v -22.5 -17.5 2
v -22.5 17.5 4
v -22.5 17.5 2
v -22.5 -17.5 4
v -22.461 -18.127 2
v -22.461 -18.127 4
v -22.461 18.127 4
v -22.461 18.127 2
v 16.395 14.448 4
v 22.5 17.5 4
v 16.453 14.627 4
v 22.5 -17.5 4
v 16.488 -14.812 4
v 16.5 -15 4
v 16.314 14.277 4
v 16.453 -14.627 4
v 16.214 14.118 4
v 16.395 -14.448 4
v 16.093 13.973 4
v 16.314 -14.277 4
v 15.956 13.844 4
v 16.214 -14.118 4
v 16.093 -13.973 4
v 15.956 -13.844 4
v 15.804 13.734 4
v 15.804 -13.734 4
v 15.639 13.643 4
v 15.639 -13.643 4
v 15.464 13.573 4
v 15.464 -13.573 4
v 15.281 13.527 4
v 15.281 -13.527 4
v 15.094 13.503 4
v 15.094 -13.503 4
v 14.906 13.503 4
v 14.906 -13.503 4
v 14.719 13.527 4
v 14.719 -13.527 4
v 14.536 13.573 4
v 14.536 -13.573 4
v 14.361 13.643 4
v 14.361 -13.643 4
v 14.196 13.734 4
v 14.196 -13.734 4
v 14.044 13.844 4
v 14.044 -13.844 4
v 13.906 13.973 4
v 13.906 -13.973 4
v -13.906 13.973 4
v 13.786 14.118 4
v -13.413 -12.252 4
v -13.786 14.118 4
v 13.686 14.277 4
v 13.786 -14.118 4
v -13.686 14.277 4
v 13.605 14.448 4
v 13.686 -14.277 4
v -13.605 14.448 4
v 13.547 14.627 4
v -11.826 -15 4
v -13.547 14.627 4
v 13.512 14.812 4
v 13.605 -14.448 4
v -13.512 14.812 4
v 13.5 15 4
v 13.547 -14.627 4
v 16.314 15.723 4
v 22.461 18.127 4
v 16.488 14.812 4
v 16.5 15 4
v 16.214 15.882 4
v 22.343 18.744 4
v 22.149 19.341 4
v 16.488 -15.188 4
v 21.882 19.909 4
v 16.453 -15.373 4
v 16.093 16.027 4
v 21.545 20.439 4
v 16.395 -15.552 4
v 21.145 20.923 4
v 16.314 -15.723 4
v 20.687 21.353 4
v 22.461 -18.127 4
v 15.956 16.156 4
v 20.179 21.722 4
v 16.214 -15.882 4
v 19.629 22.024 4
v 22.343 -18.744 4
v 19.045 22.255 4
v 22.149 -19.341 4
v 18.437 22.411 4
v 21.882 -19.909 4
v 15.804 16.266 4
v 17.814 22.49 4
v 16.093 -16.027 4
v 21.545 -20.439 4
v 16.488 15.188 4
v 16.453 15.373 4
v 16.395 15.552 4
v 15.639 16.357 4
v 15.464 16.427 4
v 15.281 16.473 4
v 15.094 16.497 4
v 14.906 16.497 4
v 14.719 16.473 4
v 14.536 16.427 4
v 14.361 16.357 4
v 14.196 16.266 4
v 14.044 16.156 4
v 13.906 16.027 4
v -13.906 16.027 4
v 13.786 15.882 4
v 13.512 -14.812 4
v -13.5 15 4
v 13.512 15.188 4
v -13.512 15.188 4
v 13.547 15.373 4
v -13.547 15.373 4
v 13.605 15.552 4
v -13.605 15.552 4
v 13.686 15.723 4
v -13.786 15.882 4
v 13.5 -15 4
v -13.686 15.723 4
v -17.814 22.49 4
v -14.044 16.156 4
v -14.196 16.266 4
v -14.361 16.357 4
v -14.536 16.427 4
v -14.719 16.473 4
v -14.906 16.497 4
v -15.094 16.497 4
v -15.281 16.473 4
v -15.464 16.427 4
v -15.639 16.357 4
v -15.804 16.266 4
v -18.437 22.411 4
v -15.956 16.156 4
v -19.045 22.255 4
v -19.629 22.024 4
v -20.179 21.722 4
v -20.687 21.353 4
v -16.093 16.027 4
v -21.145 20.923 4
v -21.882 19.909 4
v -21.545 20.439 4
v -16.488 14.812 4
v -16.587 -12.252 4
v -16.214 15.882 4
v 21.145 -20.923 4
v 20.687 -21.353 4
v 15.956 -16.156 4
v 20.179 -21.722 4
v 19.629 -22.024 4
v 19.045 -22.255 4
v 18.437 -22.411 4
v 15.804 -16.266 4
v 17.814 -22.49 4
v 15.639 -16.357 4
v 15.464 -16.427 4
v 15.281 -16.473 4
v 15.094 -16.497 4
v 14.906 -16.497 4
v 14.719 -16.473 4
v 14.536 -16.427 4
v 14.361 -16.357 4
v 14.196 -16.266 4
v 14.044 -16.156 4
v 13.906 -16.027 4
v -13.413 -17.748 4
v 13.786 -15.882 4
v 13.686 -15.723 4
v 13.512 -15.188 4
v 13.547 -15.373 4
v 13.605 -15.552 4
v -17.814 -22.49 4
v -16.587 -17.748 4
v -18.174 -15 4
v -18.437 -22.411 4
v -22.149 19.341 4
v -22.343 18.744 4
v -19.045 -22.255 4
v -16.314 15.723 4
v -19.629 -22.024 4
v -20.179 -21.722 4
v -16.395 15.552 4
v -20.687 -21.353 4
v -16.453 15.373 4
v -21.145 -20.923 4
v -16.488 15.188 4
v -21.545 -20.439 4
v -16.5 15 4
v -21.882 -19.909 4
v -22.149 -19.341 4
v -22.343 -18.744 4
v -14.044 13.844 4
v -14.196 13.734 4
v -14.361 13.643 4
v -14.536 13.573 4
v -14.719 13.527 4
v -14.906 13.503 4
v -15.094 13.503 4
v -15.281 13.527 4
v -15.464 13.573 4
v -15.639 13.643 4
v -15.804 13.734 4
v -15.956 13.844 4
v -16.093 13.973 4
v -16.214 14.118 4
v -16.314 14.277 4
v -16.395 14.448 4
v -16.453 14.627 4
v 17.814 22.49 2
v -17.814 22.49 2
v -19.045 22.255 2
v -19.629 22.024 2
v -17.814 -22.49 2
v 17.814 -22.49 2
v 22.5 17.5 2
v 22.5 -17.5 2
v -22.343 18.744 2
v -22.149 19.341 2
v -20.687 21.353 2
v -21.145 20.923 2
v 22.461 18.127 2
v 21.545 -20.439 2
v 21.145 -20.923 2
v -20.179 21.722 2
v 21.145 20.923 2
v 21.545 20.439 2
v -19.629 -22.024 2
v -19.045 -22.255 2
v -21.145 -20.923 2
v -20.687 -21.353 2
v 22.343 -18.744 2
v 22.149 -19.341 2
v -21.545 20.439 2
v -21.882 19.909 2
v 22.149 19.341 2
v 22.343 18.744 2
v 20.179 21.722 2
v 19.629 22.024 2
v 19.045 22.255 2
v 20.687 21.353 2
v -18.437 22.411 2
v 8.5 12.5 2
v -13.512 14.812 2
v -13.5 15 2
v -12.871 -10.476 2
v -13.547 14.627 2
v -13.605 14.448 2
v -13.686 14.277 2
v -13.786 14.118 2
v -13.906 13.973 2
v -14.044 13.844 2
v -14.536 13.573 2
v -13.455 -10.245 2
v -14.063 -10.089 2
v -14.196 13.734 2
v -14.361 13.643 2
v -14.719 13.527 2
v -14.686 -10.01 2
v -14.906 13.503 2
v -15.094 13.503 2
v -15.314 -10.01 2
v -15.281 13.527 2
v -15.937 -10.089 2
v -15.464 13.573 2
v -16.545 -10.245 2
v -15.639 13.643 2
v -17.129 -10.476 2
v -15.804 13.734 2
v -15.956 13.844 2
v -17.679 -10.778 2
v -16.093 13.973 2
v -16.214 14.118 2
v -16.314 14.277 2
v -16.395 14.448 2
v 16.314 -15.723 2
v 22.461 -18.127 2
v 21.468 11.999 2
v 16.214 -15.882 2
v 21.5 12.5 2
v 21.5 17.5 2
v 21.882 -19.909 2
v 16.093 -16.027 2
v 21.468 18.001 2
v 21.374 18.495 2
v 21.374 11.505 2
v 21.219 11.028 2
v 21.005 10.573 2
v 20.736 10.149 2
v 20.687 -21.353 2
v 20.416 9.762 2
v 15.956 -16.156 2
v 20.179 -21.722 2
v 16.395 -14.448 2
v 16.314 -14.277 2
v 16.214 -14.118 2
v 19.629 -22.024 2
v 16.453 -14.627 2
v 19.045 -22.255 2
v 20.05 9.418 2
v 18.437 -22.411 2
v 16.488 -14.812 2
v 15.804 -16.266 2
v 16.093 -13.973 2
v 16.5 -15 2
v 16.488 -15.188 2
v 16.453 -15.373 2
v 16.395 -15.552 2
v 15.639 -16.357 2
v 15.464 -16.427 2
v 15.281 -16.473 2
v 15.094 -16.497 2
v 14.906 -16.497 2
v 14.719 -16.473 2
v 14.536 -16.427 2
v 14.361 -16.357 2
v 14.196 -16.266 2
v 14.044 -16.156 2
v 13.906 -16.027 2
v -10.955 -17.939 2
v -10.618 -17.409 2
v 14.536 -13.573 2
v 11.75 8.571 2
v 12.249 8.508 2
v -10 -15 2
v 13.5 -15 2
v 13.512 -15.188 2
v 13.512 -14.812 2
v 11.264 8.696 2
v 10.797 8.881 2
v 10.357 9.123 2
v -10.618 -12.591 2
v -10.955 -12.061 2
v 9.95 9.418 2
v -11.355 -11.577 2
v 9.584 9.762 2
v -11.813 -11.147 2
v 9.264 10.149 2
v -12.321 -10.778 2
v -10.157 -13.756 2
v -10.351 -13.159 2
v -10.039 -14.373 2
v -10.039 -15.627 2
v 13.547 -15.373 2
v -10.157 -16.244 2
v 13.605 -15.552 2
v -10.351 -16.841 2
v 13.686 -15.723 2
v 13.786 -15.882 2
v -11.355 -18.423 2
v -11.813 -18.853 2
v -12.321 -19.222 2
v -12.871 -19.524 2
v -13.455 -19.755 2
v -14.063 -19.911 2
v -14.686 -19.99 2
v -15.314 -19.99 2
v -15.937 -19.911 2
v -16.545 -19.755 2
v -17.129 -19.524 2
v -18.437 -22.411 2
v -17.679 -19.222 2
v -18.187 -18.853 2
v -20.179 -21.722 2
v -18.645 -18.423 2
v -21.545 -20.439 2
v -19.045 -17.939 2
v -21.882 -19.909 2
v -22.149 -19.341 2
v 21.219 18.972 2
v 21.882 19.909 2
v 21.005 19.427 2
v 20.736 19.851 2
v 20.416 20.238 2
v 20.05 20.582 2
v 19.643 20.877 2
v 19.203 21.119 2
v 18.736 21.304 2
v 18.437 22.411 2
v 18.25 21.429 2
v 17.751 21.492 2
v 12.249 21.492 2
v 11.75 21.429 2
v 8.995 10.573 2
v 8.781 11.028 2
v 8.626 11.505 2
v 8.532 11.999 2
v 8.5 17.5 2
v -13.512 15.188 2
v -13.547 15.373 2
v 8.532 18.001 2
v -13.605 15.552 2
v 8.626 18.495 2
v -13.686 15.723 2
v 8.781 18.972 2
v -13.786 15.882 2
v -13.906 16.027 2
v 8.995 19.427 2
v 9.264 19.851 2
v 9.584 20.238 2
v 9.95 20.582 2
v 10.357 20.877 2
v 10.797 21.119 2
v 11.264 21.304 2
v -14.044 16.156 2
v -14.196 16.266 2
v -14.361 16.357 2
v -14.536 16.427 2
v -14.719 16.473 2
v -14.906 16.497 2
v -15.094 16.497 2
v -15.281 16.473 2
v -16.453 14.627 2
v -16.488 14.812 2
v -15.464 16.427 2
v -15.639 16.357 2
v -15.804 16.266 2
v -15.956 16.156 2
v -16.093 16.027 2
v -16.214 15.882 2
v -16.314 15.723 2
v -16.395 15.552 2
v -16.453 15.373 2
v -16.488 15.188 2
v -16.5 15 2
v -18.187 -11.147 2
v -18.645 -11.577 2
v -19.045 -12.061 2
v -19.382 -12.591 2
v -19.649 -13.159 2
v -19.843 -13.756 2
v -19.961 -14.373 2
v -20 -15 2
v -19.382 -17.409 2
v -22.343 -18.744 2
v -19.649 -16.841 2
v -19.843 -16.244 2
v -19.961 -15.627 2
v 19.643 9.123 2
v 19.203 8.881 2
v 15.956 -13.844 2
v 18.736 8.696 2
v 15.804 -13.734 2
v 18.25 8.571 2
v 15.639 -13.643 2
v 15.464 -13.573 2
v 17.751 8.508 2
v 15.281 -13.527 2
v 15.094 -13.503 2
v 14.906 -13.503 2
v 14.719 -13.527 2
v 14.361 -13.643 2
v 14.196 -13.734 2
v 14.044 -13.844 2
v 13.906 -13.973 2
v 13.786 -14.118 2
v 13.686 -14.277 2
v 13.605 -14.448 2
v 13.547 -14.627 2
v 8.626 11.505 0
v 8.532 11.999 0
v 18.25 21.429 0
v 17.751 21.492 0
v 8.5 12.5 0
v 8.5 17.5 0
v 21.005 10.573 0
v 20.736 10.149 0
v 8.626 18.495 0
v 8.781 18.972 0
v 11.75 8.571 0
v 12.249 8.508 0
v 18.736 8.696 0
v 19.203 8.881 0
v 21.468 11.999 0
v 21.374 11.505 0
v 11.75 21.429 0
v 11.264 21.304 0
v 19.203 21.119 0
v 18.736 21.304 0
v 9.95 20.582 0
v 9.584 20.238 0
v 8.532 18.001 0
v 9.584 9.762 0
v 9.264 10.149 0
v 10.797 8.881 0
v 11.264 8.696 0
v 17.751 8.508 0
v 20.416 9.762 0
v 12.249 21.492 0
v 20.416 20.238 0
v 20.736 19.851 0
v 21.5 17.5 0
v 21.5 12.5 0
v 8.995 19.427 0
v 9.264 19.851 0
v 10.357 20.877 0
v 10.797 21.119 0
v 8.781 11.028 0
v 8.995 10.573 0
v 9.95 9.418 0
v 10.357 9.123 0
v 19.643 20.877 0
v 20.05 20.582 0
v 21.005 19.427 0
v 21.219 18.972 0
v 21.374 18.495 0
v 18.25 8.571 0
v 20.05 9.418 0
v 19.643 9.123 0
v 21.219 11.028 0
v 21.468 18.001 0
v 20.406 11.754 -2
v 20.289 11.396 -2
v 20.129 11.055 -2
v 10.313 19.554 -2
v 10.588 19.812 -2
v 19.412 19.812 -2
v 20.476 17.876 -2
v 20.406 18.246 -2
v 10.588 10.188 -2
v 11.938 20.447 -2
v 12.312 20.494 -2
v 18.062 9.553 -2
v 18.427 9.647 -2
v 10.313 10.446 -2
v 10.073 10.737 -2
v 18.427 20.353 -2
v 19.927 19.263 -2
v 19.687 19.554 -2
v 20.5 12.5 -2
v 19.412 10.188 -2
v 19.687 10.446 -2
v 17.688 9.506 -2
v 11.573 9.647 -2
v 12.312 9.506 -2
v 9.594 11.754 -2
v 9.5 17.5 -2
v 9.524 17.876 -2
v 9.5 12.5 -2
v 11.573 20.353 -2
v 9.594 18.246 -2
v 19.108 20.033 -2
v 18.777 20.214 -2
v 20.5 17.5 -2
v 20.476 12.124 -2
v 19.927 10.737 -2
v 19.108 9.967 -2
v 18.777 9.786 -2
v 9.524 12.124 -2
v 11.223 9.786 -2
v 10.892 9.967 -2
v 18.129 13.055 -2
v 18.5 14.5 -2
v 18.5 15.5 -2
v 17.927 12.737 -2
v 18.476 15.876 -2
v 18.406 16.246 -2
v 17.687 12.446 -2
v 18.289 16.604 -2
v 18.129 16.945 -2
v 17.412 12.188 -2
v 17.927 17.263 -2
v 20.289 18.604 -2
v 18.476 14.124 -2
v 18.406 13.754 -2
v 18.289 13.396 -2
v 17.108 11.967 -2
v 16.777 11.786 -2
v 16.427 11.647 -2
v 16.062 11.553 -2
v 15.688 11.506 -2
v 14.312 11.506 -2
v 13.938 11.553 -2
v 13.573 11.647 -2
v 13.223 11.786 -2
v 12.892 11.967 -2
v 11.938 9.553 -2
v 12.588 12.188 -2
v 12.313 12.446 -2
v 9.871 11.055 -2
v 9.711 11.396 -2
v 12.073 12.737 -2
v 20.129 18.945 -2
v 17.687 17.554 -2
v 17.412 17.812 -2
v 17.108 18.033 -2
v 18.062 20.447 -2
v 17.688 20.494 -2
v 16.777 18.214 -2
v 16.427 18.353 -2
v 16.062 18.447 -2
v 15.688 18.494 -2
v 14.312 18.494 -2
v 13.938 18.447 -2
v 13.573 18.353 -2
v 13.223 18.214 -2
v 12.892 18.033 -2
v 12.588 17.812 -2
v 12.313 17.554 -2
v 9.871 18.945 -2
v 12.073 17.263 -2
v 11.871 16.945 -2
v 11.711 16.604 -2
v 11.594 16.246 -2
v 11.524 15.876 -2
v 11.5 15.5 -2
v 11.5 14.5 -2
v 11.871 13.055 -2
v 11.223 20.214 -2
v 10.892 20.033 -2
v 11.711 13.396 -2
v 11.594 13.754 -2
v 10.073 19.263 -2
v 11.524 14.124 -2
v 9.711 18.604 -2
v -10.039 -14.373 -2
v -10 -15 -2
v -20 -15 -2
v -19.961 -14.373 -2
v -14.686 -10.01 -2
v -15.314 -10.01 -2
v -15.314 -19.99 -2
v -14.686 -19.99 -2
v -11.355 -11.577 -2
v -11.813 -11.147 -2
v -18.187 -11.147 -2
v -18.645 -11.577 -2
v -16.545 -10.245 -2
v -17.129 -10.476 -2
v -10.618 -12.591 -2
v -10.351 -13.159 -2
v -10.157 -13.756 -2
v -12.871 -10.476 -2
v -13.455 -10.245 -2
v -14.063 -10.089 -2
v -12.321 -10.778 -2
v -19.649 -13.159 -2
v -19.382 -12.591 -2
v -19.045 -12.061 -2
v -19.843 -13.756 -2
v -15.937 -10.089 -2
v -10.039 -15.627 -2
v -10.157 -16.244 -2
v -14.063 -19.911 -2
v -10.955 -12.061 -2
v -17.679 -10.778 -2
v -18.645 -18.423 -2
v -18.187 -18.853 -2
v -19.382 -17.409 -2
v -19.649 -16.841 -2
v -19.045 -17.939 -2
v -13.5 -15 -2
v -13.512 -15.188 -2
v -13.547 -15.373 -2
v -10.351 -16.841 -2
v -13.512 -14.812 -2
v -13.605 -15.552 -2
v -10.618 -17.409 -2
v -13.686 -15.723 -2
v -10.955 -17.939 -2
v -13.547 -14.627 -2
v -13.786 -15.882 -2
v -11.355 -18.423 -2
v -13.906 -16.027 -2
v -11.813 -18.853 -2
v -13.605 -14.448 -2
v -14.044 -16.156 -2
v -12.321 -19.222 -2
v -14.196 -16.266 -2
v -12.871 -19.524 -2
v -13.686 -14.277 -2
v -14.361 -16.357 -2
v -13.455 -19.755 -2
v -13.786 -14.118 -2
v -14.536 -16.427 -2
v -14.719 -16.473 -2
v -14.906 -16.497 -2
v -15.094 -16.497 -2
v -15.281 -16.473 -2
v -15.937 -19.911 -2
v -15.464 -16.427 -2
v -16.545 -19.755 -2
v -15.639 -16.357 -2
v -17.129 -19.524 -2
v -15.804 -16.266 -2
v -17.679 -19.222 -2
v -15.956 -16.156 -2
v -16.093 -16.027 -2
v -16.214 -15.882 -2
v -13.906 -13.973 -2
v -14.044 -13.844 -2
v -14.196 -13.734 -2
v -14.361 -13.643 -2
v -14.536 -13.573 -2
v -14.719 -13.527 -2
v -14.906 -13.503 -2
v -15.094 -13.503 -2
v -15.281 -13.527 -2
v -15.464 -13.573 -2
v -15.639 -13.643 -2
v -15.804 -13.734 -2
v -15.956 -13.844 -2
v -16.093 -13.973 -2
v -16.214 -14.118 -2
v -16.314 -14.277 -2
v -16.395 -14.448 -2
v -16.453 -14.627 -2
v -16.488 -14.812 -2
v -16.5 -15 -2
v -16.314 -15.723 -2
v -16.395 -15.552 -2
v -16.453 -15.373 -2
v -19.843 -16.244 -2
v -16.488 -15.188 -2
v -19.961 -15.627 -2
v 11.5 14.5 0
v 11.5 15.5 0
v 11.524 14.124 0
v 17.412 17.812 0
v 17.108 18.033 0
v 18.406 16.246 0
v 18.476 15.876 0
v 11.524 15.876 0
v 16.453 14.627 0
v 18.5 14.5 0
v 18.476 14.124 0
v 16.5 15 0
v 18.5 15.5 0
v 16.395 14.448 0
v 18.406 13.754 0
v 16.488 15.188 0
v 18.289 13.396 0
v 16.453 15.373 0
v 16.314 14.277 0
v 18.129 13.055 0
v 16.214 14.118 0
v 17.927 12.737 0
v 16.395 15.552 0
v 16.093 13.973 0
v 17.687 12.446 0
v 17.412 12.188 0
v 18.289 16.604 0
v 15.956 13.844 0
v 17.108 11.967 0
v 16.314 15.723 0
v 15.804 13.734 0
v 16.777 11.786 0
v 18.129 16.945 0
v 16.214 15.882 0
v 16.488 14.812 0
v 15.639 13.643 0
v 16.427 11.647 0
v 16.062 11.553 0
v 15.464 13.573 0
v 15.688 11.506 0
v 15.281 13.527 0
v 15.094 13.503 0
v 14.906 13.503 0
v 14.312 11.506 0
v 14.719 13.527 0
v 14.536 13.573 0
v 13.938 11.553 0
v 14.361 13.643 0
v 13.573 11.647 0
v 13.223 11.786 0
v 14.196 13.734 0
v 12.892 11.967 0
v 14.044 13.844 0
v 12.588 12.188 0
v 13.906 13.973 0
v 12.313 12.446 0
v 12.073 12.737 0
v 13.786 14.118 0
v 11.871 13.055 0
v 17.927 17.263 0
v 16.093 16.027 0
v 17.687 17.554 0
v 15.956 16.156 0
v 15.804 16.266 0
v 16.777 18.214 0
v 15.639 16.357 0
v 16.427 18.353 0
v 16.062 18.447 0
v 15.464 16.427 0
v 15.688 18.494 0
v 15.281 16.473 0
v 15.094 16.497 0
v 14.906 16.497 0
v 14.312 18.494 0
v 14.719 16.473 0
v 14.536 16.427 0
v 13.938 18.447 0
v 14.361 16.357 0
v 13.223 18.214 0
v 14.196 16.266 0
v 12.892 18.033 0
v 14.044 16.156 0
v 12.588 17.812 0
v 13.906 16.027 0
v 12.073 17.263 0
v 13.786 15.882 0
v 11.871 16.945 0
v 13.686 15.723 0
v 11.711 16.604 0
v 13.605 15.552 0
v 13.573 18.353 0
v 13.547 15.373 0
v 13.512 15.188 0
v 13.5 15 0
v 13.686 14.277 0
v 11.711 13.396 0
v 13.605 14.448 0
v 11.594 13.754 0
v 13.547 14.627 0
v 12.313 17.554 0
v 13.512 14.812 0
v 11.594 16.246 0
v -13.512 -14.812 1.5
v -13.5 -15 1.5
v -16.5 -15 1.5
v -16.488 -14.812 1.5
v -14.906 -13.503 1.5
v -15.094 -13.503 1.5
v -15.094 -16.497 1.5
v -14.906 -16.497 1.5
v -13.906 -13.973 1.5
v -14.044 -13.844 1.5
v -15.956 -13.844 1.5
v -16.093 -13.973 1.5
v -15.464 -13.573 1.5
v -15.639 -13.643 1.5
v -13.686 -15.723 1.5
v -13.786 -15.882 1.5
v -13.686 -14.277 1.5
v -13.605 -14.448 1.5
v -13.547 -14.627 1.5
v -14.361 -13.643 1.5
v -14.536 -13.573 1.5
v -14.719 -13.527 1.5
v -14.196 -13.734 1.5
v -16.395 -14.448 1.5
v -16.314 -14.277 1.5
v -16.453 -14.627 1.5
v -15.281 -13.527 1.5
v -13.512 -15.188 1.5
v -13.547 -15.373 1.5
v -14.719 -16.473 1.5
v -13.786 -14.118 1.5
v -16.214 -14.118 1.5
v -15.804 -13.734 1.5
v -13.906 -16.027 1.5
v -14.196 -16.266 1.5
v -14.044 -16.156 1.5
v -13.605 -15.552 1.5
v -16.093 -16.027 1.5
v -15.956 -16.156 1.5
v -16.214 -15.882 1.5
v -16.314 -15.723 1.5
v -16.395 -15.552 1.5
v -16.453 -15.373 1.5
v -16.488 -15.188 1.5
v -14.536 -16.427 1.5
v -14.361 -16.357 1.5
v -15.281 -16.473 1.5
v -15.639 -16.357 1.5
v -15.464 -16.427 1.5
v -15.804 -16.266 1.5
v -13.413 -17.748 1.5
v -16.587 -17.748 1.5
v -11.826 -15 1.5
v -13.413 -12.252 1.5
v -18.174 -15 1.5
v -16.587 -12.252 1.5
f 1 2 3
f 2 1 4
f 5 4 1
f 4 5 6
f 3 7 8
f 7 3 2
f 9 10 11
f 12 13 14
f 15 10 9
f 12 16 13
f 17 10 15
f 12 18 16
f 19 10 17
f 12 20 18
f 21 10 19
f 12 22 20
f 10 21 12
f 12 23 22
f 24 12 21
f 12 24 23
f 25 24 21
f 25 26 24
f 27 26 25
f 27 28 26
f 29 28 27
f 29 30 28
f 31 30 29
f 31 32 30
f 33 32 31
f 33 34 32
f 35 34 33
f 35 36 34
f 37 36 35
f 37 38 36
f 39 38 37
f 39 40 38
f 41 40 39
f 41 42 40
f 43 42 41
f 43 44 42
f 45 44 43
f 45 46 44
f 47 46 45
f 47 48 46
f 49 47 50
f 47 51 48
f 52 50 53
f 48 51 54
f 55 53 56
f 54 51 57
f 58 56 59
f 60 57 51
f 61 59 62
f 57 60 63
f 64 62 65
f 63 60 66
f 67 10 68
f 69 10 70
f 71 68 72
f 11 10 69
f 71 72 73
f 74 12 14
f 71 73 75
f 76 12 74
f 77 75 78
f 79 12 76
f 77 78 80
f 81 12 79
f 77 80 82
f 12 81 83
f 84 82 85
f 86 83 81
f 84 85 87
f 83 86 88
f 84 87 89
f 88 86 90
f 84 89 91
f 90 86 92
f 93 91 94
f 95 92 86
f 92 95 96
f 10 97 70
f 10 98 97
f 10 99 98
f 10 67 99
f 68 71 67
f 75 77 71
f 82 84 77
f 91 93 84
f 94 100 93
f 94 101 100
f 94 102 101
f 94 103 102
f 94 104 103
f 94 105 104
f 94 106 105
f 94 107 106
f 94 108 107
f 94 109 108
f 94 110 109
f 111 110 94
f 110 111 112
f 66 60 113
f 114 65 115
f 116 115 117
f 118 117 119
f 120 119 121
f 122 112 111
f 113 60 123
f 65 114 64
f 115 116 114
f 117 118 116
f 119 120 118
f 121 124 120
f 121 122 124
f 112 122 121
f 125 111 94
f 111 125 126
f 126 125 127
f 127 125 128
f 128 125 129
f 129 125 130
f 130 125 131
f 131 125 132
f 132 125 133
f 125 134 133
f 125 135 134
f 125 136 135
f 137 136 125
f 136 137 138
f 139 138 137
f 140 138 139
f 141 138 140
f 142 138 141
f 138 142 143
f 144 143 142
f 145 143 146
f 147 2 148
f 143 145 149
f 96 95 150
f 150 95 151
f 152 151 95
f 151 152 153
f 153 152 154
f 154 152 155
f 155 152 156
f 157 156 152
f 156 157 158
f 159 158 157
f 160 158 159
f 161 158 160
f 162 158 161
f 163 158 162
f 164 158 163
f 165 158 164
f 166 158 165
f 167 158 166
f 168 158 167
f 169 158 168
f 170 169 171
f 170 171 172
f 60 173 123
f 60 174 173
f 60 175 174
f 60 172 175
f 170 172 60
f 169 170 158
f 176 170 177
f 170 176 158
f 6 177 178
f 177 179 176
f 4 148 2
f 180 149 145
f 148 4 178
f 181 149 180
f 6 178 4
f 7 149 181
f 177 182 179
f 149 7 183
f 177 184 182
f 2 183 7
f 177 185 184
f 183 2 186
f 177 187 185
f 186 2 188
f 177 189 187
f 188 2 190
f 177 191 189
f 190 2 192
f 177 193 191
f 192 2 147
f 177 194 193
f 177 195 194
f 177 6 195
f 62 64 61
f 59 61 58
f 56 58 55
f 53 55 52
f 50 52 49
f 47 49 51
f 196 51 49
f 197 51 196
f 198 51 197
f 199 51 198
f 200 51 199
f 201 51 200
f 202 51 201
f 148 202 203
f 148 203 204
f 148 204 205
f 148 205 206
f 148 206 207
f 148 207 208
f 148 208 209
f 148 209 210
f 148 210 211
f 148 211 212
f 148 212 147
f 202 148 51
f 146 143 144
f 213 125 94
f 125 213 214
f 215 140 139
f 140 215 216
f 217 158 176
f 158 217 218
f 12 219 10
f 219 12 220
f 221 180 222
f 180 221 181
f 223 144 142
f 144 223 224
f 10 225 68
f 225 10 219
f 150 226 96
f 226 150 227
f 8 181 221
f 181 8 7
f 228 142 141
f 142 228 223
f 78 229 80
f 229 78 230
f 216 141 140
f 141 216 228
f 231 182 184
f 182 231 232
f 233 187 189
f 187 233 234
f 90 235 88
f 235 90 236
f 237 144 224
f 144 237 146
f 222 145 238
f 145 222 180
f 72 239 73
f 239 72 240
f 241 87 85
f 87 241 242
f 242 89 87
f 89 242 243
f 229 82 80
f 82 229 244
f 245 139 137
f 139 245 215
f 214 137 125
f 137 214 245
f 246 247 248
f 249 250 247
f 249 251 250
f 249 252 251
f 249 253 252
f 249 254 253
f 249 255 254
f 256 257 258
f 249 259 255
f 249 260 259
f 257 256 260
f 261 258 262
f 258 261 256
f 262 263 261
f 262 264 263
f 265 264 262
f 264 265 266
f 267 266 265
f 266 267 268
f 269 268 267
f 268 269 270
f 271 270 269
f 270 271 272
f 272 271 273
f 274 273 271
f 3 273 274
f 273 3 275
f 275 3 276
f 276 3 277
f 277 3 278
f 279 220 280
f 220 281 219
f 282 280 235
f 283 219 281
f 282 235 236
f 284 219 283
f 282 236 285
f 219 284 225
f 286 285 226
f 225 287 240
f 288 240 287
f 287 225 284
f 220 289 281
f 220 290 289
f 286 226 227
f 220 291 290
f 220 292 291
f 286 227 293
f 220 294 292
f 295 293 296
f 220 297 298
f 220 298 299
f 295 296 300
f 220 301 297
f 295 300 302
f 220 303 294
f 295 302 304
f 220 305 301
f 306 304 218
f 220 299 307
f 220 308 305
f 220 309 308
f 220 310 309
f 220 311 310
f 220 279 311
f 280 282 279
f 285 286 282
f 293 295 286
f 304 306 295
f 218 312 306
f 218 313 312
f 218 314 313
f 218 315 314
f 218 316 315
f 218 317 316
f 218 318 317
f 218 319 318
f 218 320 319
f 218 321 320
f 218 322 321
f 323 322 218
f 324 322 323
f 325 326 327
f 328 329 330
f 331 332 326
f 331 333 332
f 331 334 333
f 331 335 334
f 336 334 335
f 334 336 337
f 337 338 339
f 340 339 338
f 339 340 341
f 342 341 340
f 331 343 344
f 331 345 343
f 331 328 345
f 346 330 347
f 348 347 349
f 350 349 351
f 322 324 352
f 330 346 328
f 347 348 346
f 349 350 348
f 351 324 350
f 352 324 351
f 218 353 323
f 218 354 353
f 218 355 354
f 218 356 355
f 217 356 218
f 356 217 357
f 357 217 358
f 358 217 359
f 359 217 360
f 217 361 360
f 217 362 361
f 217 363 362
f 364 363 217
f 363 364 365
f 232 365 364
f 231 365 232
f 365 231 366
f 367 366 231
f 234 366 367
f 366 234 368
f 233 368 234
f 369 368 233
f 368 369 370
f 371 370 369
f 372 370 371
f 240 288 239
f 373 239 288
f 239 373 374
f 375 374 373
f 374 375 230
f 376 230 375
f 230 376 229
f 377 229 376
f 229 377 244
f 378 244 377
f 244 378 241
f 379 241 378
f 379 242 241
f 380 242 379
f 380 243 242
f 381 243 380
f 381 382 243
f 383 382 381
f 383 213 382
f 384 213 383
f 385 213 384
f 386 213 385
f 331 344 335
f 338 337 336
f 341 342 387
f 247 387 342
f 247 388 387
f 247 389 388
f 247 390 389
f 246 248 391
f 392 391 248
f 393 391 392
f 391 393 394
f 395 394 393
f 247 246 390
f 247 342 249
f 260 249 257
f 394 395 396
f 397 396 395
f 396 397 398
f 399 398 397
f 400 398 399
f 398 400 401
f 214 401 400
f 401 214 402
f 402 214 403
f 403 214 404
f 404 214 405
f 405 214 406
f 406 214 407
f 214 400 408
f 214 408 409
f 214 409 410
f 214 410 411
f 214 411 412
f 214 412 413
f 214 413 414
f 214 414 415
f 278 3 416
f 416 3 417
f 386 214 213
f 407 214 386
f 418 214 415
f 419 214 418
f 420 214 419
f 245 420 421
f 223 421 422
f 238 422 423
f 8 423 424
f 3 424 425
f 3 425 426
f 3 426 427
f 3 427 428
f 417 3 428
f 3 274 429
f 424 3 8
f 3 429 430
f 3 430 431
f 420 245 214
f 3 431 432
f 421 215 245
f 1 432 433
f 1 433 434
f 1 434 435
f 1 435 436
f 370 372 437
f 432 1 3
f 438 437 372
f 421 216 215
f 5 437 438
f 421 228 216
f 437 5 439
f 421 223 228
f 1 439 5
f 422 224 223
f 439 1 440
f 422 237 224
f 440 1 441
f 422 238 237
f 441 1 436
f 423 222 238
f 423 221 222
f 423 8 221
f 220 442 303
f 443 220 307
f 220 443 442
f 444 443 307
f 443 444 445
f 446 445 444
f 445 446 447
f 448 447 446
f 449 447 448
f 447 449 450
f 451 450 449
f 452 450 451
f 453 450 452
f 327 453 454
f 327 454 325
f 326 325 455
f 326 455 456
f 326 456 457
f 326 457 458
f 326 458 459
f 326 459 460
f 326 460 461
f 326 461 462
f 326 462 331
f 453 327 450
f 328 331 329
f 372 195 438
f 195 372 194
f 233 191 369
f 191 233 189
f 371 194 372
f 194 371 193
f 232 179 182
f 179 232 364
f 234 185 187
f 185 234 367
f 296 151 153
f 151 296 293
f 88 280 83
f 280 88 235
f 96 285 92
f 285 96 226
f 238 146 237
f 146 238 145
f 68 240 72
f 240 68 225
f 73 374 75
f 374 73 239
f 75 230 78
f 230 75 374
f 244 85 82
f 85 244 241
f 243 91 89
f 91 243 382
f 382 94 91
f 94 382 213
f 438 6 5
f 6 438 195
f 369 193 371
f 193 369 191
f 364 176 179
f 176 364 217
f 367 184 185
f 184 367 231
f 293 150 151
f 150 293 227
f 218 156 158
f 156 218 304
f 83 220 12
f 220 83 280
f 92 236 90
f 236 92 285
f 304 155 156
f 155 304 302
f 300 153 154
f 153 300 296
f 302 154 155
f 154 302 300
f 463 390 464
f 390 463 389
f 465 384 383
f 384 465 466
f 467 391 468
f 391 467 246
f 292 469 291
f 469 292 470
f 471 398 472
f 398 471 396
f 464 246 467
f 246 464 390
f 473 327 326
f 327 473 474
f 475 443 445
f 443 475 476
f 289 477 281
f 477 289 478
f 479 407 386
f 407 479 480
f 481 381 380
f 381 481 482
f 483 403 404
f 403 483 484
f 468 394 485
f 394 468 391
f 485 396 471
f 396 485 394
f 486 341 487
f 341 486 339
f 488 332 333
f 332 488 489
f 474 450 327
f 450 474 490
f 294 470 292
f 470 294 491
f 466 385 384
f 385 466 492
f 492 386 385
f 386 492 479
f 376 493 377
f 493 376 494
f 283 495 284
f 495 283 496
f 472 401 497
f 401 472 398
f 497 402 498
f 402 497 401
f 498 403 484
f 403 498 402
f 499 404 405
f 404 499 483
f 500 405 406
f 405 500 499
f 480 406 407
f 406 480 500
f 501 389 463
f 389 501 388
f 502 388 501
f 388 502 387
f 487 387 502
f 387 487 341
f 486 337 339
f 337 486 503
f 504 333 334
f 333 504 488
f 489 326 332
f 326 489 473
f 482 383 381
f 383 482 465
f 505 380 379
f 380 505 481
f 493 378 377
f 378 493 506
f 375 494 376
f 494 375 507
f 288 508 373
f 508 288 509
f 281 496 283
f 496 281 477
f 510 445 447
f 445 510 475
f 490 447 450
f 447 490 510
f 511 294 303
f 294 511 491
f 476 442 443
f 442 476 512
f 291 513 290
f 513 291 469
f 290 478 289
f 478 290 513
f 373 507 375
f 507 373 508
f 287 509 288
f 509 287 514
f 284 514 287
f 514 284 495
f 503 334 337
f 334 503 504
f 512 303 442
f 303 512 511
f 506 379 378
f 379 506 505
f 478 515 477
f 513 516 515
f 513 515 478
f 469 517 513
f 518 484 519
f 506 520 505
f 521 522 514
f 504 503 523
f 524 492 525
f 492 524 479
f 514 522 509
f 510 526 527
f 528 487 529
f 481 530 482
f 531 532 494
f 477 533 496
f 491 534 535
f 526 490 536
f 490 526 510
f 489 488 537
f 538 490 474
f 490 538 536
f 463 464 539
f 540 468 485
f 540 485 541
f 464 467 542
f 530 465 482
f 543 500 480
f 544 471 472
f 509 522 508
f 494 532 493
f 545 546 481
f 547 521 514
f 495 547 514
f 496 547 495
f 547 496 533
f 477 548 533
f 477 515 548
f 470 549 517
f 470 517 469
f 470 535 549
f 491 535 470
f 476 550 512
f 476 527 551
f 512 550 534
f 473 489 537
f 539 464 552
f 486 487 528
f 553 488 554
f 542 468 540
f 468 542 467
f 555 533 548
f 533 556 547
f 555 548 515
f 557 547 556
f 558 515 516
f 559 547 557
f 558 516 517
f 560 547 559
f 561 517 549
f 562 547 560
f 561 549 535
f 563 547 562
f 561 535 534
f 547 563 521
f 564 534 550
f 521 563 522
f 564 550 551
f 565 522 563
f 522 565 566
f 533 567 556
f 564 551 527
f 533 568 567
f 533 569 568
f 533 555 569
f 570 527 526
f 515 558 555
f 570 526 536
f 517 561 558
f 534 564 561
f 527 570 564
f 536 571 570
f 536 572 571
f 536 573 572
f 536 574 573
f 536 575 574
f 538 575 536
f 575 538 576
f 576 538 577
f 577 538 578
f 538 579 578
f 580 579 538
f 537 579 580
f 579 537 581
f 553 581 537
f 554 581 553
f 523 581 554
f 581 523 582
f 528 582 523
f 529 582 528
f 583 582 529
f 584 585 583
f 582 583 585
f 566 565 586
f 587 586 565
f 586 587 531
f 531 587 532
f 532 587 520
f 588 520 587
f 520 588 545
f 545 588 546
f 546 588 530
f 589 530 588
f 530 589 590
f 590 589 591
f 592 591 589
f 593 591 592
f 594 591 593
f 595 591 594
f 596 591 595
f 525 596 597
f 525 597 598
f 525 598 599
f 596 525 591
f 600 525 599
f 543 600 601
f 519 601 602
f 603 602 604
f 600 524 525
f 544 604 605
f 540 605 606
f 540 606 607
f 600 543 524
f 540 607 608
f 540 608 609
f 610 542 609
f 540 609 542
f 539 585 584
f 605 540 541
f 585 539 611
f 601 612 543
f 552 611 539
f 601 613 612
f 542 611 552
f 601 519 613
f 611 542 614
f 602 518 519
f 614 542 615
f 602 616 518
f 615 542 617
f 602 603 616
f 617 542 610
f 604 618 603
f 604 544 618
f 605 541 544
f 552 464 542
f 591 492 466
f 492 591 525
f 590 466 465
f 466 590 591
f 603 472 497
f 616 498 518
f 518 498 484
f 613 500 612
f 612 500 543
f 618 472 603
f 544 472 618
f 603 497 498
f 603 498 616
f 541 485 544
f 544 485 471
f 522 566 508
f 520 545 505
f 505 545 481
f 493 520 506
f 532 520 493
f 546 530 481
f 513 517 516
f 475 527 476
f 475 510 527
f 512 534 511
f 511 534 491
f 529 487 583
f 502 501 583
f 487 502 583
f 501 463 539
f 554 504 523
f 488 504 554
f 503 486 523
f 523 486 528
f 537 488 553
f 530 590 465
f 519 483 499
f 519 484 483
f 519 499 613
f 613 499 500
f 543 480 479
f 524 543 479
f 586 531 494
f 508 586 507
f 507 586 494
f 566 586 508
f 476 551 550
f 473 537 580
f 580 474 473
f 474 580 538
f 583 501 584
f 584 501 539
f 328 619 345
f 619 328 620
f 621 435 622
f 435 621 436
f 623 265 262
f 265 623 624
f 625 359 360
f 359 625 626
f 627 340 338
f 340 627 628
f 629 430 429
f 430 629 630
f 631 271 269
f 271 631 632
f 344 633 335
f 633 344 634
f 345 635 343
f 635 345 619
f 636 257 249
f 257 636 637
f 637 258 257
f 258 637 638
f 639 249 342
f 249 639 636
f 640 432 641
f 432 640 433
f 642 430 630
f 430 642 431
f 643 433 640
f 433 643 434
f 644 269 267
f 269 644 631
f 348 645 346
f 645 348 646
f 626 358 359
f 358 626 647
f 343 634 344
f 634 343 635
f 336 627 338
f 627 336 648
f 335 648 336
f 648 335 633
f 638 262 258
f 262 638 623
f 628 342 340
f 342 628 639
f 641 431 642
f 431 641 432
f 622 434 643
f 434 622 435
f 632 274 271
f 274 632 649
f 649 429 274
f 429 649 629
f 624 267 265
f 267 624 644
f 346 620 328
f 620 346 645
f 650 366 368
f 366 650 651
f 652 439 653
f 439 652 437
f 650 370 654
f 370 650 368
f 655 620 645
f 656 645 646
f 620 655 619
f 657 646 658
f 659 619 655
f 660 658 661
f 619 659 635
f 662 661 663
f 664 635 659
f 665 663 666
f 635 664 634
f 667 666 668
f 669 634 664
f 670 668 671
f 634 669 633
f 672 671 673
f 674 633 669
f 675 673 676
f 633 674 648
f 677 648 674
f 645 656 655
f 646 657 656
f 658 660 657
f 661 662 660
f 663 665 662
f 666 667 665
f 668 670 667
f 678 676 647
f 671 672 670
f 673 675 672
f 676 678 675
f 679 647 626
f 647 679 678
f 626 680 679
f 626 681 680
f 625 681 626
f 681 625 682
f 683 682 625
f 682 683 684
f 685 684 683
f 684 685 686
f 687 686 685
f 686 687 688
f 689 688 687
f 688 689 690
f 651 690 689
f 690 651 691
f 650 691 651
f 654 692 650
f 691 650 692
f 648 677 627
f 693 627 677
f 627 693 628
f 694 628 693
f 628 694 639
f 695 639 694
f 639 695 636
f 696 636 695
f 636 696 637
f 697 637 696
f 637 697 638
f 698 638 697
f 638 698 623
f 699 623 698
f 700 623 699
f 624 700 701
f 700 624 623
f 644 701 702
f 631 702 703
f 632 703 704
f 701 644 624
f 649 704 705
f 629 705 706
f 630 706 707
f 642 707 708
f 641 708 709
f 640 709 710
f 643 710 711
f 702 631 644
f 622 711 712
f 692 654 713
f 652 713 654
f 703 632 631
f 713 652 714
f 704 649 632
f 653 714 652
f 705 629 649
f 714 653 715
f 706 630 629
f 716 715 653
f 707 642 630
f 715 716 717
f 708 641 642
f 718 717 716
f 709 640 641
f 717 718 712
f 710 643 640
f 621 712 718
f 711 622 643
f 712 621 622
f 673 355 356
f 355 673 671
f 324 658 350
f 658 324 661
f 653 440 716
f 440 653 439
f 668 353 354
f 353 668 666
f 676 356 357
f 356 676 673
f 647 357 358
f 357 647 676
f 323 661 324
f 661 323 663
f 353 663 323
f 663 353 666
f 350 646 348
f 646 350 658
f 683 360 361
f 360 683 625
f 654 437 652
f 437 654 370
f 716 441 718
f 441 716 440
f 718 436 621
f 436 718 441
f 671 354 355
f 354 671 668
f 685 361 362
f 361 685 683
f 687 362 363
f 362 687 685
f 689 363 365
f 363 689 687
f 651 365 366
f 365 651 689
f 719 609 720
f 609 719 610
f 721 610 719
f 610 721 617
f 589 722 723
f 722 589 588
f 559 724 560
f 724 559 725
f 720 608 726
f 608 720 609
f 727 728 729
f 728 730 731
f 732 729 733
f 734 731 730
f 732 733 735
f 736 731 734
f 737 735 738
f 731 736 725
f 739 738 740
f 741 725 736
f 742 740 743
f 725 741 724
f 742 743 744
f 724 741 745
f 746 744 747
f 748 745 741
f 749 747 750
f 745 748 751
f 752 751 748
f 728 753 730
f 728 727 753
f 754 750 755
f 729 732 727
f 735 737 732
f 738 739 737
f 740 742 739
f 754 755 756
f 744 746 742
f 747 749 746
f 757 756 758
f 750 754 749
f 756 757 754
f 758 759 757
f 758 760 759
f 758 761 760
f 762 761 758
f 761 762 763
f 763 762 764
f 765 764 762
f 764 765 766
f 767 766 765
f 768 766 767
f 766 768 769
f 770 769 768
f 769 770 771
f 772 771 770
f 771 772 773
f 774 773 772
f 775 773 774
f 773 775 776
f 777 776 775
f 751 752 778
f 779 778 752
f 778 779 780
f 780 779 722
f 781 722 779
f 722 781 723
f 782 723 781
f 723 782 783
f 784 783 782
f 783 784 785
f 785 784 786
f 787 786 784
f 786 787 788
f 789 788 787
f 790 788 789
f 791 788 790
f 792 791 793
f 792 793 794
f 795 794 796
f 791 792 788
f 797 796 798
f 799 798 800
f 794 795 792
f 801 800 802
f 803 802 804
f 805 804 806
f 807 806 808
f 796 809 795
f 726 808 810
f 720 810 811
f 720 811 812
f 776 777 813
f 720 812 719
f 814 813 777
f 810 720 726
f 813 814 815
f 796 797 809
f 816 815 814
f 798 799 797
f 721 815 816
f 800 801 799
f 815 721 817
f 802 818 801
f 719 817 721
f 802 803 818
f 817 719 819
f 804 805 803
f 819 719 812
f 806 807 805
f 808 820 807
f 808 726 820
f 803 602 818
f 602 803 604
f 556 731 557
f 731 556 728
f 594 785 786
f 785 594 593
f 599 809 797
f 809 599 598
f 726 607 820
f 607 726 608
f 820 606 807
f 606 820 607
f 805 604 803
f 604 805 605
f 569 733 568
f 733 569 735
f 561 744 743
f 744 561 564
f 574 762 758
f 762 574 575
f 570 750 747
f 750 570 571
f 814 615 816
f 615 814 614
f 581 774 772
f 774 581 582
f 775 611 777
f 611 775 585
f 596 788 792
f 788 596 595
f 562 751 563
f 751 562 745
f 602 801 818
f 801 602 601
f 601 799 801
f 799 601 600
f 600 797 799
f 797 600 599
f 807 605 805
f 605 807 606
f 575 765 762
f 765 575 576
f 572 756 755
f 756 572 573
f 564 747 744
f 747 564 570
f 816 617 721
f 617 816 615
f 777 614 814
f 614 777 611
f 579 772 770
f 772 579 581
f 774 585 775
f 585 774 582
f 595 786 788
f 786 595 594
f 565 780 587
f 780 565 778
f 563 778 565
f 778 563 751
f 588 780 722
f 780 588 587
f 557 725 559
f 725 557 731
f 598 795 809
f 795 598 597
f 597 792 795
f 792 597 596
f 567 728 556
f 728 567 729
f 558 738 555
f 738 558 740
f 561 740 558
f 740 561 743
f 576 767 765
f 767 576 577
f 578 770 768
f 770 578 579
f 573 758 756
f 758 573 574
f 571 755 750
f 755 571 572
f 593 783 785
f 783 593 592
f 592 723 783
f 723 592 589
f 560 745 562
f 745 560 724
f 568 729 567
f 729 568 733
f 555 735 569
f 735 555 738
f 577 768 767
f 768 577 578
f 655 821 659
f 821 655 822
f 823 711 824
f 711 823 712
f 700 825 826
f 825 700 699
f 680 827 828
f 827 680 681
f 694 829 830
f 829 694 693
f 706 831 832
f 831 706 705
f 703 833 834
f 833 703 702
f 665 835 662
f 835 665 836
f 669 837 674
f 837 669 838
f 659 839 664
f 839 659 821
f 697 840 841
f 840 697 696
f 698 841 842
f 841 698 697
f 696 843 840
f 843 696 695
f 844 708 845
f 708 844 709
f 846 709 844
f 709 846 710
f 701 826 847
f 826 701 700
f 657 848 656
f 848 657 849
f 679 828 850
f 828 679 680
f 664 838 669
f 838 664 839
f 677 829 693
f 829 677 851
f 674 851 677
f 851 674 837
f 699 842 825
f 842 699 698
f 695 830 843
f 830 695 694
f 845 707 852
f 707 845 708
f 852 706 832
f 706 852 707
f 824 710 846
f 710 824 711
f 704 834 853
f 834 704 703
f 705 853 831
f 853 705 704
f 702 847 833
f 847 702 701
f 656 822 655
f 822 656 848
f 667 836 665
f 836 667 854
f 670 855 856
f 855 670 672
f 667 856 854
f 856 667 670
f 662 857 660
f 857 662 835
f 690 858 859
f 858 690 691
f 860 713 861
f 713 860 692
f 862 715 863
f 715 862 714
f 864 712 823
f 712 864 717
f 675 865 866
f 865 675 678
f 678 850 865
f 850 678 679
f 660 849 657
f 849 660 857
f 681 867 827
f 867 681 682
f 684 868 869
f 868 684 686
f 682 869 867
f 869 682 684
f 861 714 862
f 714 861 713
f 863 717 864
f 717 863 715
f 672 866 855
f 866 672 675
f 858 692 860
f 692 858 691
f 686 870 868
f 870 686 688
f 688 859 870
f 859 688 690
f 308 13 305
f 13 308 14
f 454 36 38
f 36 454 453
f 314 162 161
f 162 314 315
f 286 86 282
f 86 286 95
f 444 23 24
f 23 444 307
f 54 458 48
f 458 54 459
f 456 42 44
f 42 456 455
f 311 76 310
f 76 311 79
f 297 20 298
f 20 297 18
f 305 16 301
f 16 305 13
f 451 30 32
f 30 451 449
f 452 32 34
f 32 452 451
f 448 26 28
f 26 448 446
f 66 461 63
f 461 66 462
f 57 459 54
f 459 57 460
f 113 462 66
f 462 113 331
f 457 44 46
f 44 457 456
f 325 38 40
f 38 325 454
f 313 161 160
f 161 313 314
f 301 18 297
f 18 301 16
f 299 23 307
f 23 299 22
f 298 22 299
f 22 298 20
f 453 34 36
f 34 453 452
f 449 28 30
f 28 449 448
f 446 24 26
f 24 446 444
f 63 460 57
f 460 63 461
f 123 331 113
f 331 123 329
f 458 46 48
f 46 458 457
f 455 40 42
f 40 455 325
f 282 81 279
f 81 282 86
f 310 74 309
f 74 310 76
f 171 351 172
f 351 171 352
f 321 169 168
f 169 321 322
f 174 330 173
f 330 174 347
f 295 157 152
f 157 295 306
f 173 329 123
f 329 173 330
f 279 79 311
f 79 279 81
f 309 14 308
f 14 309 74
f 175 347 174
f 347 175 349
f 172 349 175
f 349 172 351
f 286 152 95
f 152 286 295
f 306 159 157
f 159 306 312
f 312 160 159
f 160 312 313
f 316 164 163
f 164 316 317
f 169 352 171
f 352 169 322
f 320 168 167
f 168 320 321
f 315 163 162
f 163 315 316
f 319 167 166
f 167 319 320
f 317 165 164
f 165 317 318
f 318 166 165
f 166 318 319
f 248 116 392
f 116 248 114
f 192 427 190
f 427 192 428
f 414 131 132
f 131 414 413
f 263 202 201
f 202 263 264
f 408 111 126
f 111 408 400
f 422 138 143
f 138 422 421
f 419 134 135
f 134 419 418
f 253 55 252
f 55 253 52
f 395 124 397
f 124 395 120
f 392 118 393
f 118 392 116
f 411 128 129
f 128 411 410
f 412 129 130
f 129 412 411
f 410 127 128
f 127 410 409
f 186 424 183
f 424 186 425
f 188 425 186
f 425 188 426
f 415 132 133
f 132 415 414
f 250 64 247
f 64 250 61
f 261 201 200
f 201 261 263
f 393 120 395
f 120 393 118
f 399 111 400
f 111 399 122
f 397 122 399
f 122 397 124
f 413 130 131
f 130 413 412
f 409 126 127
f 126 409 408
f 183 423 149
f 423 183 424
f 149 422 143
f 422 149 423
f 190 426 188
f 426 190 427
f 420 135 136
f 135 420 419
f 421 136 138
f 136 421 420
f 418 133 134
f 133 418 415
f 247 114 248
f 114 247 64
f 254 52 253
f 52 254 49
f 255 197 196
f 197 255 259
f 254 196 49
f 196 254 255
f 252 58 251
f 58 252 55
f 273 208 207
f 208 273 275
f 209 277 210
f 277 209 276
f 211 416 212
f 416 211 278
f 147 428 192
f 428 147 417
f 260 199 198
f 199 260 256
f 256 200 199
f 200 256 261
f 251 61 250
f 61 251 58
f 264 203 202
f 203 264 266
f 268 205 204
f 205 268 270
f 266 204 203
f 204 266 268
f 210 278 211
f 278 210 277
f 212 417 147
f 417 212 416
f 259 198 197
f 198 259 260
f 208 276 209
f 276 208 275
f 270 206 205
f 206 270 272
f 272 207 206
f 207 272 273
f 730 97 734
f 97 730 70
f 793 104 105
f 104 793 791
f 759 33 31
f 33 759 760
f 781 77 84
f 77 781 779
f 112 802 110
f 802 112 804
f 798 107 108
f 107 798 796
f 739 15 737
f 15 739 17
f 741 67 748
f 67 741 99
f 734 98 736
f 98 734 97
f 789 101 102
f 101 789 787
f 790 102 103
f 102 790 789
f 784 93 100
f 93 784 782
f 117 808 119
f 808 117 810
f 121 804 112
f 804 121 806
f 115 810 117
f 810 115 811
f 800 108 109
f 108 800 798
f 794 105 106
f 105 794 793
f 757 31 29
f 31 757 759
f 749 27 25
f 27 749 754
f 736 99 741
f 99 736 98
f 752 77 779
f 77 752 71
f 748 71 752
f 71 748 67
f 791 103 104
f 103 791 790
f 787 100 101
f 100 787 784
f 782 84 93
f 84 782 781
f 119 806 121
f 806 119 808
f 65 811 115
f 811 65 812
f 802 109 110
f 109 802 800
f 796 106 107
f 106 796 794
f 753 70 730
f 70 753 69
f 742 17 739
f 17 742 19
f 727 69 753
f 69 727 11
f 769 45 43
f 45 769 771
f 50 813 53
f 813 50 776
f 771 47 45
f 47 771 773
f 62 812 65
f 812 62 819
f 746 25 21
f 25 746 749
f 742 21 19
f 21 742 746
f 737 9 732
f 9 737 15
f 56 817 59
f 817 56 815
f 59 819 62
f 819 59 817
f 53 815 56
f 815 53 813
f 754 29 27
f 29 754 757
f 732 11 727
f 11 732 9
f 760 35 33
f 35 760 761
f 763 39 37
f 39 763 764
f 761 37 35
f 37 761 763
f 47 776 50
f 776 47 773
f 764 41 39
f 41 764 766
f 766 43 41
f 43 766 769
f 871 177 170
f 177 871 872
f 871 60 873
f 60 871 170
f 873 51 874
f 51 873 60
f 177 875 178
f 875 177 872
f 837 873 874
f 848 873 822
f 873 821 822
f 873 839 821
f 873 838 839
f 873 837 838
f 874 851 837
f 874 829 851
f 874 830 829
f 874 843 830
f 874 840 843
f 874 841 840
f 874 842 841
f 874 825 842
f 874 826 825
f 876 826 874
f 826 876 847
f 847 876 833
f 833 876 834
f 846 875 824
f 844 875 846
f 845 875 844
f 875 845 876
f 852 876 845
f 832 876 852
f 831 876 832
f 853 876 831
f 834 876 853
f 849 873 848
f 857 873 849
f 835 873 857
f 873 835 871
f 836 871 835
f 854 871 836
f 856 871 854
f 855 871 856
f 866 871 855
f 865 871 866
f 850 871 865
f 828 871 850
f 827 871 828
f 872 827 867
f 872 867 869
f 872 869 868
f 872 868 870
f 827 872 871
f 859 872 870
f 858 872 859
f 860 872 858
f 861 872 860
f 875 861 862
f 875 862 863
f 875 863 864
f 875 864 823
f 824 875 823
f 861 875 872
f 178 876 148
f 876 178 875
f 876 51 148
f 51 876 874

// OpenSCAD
$fn = 50;


difference() {
	union() {
		translate(v = [0, 0, 2]) {
			rotate(a = [0, 0, 0]) {
				hull() {
					translate(v = [-17.5000000000, 17.5000000000, 0]) {
						rotate(a = [0, 0, 0]) {
							translate(v = [0, 0, 0]) {
								rotate(a = [0, 0, 0]) {
									cylinder(h = 2, r = 5);
								}
							}
						}
					}
					translate(v = [17.5000000000, 17.5000000000, 0]) {
						rotate(a = [0, 0, 0]) {
							translate(v = [0, 0, 0]) {
								rotate(a = [0, 0, 0]) {
									cylinder(h = 2, r = 5);
								}
							}
						}
					}
					translate(v = [-17.5000000000, -17.5000000000, 0]) {
						rotate(a = [0, 0, 0]) {
							translate(v = [0, 0, 0]) {
								rotate(a = [0, 0, 0]) {
									cylinder(h = 2, r = 5);
								}
							}
						}
					}
					translate(v = [17.5000000000, -17.5000000000, 0]) {
						rotate(a = [0, 0, 0]) {
							translate(v = [0, 0, 0]) {
								rotate(a = [0, 0, 0]) {
									cylinder(h = 2, r = 5);
								}
							}
						}
					}
				}
			}
		}
		translate(v = [15.0000000000, 15.0000000000, 0]) {
			rotate(a = [0, 0, 0]) {
				hull() {
					translate(v = [-2.5000000000, 2.5000000000, 0]) {
						rotate(a = [0, 0, 0]) {
							cylinder(h = 2, r1 = 4.0000000000, r2 = 4.0000000000);
						}
					}
					translate(v = [2.5000000000, 2.5000000000, 0]) {
						rotate(a = [0, 0, 0]) {
							cylinder(h = 2, r1 = 4.0000000000, r2 = 4.0000000000);
						}
					}
					translate(v = [-2.5000000000, -2.5000000000, 0]) {
						rotate(a = [0, 0, 0]) {
							cylinder(h = 2, r1 = 4.0000000000, r2 = 4.0000000000);
						}
					}
					translate(v = [2.5000000000, -2.5000000000, 0]) {
						rotate(a = [0, 0, 0]) {
							cylinder(h = 2, r1 = 4.0000000000, r2 = 4.0000000000);
						}
					}
				}
			}
		}
		translate(v = [15.0000000000, 15.0000000000, -2]) {
			rotate(a = [0, 180, 0]) {
				hull() {
					translate(v = [-2.5000000000, 2.5000000000, 0]) {
						rotate(a = [0, 180, 0]) {
							cylinder(h = 2, r1 = 3.0000000000, r2 = 4.0000000000);
						}
					}
					translate(v = [2.5000000000, 2.5000000000, 0]) {
						rotate(a = [0, 180, 0]) {
							cylinder(h = 2, r1 = 3.0000000000, r2 = 4.0000000000);
						}
					}
					translate(v = [-2.5000000000, -2.5000000000, 0]) {
						rotate(a = [0, 180, 0]) {
							cylinder(h = 2, r1 = 3.0000000000, r2 = 4.0000000000);
						}
					}
					translate(v = [2.5000000000, -2.5000000000, 0]) {
						rotate(a = [0, 180, 0]) {
							cylinder(h = 2, r1 = 3.0000000000, r2 = 4.0000000000);
						}
					}
				}
			}
		}
		translate(v = [-15.0000000000, -15.0000000000, -2.0000000000]) {
			rotate(a = [0, 0, 0]) {
				cylinder(h = 4, r = 5);
			}
		}
	}
	union() {
		translate(v = [15.0000000000, 15.0000000000, -2]) {
			rotate(a = [0, 0, 0]) {
				hull() {
					translate(v = [-0.5000000000, 0.5000000000, 0]) {
						rotate(a = [0, 0, 0]) {
							translate(v = [0, 0, 0]) {
								rotate(a = [0, 0, 0]) {
									cylinder(h = 2, r = 3.0000000000);
								}
							}
						}
					}
					translate(v = [0.5000000000, 0.5000000000, 0]) {
						rotate(a = [0, 0, 0]) {
							translate(v = [0, 0, 0]) {
								rotate(a = [0, 0, 0]) {
									cylinder(h = 2, r = 3.0000000000);
								}
							}
						}
					}
					translate(v = [-0.5000000000, -0.5000000000, 0]) {
						rotate(a = [0, 0, 0]) {
							translate(v = [0, 0, 0]) {
								rotate(a = [0, 0, 0]) {
									cylinder(h = 2, r = 3.0000000000);
								}
							}
						}
					}
					translate(v = [0.5000000000, -0.5000000000, 0]) {
						rotate(a = [0, 0, 0]) {
							translate(v = [0, 0, 0]) {
								rotate(a = [0, 0, 0]) {
									cylinder(h = 2, r = 3.0000000000);
								}
							}
						}
					}
				}
			}
		}
		translate(v = [-15.0000000000, -15.0000000000, -50]) {
			rotate(a = [0, 0, 0]) {
				cylinder(h = 100, r = 1.5000000000);
			}
		}
		translate(v = [15.0000000000, -15.0000000000, -50]) {
			rotate(a = [0, 0, 0]) {
				cylinder(h = 100, r = 1.5000000000);
			}
		}
		translate(v = [-15.0000000000, 15.0000000000, -50]) {
			rotate(a = [0, 0, 0]) {
				cylinder(h = 100, r = 1.5000000000);
			}
		}
		translate(v = [15.0000000000, 15.0000000000, -50]) {
			rotate(a = [0, 0, 0]) {
				cylinder(h = 100, r = 1.5000000000);
			}
		}
		translate(v = [-15.0000000000, -15.0000000000, 1.5000000000]) {
			rotate(a = [0, 0, 0]) {
				#translate(v = [0, 0, 0]) {
					rotate(a = [0, 0, 0]) {
						linear_extrude(height = 2.5000000000) {
							polygon(points = [[3.1735000000, 0.0000000000], [1.5867500000, 2.7483316189], [-1.5867500000, 2.7483316189], [-3.1735000000, 0.0000000000], [-1.5867500000, -2.7483316189], [1.5867500000, -2.7483316189]]);
						}
					}
				}
			}
		}
	}
}
